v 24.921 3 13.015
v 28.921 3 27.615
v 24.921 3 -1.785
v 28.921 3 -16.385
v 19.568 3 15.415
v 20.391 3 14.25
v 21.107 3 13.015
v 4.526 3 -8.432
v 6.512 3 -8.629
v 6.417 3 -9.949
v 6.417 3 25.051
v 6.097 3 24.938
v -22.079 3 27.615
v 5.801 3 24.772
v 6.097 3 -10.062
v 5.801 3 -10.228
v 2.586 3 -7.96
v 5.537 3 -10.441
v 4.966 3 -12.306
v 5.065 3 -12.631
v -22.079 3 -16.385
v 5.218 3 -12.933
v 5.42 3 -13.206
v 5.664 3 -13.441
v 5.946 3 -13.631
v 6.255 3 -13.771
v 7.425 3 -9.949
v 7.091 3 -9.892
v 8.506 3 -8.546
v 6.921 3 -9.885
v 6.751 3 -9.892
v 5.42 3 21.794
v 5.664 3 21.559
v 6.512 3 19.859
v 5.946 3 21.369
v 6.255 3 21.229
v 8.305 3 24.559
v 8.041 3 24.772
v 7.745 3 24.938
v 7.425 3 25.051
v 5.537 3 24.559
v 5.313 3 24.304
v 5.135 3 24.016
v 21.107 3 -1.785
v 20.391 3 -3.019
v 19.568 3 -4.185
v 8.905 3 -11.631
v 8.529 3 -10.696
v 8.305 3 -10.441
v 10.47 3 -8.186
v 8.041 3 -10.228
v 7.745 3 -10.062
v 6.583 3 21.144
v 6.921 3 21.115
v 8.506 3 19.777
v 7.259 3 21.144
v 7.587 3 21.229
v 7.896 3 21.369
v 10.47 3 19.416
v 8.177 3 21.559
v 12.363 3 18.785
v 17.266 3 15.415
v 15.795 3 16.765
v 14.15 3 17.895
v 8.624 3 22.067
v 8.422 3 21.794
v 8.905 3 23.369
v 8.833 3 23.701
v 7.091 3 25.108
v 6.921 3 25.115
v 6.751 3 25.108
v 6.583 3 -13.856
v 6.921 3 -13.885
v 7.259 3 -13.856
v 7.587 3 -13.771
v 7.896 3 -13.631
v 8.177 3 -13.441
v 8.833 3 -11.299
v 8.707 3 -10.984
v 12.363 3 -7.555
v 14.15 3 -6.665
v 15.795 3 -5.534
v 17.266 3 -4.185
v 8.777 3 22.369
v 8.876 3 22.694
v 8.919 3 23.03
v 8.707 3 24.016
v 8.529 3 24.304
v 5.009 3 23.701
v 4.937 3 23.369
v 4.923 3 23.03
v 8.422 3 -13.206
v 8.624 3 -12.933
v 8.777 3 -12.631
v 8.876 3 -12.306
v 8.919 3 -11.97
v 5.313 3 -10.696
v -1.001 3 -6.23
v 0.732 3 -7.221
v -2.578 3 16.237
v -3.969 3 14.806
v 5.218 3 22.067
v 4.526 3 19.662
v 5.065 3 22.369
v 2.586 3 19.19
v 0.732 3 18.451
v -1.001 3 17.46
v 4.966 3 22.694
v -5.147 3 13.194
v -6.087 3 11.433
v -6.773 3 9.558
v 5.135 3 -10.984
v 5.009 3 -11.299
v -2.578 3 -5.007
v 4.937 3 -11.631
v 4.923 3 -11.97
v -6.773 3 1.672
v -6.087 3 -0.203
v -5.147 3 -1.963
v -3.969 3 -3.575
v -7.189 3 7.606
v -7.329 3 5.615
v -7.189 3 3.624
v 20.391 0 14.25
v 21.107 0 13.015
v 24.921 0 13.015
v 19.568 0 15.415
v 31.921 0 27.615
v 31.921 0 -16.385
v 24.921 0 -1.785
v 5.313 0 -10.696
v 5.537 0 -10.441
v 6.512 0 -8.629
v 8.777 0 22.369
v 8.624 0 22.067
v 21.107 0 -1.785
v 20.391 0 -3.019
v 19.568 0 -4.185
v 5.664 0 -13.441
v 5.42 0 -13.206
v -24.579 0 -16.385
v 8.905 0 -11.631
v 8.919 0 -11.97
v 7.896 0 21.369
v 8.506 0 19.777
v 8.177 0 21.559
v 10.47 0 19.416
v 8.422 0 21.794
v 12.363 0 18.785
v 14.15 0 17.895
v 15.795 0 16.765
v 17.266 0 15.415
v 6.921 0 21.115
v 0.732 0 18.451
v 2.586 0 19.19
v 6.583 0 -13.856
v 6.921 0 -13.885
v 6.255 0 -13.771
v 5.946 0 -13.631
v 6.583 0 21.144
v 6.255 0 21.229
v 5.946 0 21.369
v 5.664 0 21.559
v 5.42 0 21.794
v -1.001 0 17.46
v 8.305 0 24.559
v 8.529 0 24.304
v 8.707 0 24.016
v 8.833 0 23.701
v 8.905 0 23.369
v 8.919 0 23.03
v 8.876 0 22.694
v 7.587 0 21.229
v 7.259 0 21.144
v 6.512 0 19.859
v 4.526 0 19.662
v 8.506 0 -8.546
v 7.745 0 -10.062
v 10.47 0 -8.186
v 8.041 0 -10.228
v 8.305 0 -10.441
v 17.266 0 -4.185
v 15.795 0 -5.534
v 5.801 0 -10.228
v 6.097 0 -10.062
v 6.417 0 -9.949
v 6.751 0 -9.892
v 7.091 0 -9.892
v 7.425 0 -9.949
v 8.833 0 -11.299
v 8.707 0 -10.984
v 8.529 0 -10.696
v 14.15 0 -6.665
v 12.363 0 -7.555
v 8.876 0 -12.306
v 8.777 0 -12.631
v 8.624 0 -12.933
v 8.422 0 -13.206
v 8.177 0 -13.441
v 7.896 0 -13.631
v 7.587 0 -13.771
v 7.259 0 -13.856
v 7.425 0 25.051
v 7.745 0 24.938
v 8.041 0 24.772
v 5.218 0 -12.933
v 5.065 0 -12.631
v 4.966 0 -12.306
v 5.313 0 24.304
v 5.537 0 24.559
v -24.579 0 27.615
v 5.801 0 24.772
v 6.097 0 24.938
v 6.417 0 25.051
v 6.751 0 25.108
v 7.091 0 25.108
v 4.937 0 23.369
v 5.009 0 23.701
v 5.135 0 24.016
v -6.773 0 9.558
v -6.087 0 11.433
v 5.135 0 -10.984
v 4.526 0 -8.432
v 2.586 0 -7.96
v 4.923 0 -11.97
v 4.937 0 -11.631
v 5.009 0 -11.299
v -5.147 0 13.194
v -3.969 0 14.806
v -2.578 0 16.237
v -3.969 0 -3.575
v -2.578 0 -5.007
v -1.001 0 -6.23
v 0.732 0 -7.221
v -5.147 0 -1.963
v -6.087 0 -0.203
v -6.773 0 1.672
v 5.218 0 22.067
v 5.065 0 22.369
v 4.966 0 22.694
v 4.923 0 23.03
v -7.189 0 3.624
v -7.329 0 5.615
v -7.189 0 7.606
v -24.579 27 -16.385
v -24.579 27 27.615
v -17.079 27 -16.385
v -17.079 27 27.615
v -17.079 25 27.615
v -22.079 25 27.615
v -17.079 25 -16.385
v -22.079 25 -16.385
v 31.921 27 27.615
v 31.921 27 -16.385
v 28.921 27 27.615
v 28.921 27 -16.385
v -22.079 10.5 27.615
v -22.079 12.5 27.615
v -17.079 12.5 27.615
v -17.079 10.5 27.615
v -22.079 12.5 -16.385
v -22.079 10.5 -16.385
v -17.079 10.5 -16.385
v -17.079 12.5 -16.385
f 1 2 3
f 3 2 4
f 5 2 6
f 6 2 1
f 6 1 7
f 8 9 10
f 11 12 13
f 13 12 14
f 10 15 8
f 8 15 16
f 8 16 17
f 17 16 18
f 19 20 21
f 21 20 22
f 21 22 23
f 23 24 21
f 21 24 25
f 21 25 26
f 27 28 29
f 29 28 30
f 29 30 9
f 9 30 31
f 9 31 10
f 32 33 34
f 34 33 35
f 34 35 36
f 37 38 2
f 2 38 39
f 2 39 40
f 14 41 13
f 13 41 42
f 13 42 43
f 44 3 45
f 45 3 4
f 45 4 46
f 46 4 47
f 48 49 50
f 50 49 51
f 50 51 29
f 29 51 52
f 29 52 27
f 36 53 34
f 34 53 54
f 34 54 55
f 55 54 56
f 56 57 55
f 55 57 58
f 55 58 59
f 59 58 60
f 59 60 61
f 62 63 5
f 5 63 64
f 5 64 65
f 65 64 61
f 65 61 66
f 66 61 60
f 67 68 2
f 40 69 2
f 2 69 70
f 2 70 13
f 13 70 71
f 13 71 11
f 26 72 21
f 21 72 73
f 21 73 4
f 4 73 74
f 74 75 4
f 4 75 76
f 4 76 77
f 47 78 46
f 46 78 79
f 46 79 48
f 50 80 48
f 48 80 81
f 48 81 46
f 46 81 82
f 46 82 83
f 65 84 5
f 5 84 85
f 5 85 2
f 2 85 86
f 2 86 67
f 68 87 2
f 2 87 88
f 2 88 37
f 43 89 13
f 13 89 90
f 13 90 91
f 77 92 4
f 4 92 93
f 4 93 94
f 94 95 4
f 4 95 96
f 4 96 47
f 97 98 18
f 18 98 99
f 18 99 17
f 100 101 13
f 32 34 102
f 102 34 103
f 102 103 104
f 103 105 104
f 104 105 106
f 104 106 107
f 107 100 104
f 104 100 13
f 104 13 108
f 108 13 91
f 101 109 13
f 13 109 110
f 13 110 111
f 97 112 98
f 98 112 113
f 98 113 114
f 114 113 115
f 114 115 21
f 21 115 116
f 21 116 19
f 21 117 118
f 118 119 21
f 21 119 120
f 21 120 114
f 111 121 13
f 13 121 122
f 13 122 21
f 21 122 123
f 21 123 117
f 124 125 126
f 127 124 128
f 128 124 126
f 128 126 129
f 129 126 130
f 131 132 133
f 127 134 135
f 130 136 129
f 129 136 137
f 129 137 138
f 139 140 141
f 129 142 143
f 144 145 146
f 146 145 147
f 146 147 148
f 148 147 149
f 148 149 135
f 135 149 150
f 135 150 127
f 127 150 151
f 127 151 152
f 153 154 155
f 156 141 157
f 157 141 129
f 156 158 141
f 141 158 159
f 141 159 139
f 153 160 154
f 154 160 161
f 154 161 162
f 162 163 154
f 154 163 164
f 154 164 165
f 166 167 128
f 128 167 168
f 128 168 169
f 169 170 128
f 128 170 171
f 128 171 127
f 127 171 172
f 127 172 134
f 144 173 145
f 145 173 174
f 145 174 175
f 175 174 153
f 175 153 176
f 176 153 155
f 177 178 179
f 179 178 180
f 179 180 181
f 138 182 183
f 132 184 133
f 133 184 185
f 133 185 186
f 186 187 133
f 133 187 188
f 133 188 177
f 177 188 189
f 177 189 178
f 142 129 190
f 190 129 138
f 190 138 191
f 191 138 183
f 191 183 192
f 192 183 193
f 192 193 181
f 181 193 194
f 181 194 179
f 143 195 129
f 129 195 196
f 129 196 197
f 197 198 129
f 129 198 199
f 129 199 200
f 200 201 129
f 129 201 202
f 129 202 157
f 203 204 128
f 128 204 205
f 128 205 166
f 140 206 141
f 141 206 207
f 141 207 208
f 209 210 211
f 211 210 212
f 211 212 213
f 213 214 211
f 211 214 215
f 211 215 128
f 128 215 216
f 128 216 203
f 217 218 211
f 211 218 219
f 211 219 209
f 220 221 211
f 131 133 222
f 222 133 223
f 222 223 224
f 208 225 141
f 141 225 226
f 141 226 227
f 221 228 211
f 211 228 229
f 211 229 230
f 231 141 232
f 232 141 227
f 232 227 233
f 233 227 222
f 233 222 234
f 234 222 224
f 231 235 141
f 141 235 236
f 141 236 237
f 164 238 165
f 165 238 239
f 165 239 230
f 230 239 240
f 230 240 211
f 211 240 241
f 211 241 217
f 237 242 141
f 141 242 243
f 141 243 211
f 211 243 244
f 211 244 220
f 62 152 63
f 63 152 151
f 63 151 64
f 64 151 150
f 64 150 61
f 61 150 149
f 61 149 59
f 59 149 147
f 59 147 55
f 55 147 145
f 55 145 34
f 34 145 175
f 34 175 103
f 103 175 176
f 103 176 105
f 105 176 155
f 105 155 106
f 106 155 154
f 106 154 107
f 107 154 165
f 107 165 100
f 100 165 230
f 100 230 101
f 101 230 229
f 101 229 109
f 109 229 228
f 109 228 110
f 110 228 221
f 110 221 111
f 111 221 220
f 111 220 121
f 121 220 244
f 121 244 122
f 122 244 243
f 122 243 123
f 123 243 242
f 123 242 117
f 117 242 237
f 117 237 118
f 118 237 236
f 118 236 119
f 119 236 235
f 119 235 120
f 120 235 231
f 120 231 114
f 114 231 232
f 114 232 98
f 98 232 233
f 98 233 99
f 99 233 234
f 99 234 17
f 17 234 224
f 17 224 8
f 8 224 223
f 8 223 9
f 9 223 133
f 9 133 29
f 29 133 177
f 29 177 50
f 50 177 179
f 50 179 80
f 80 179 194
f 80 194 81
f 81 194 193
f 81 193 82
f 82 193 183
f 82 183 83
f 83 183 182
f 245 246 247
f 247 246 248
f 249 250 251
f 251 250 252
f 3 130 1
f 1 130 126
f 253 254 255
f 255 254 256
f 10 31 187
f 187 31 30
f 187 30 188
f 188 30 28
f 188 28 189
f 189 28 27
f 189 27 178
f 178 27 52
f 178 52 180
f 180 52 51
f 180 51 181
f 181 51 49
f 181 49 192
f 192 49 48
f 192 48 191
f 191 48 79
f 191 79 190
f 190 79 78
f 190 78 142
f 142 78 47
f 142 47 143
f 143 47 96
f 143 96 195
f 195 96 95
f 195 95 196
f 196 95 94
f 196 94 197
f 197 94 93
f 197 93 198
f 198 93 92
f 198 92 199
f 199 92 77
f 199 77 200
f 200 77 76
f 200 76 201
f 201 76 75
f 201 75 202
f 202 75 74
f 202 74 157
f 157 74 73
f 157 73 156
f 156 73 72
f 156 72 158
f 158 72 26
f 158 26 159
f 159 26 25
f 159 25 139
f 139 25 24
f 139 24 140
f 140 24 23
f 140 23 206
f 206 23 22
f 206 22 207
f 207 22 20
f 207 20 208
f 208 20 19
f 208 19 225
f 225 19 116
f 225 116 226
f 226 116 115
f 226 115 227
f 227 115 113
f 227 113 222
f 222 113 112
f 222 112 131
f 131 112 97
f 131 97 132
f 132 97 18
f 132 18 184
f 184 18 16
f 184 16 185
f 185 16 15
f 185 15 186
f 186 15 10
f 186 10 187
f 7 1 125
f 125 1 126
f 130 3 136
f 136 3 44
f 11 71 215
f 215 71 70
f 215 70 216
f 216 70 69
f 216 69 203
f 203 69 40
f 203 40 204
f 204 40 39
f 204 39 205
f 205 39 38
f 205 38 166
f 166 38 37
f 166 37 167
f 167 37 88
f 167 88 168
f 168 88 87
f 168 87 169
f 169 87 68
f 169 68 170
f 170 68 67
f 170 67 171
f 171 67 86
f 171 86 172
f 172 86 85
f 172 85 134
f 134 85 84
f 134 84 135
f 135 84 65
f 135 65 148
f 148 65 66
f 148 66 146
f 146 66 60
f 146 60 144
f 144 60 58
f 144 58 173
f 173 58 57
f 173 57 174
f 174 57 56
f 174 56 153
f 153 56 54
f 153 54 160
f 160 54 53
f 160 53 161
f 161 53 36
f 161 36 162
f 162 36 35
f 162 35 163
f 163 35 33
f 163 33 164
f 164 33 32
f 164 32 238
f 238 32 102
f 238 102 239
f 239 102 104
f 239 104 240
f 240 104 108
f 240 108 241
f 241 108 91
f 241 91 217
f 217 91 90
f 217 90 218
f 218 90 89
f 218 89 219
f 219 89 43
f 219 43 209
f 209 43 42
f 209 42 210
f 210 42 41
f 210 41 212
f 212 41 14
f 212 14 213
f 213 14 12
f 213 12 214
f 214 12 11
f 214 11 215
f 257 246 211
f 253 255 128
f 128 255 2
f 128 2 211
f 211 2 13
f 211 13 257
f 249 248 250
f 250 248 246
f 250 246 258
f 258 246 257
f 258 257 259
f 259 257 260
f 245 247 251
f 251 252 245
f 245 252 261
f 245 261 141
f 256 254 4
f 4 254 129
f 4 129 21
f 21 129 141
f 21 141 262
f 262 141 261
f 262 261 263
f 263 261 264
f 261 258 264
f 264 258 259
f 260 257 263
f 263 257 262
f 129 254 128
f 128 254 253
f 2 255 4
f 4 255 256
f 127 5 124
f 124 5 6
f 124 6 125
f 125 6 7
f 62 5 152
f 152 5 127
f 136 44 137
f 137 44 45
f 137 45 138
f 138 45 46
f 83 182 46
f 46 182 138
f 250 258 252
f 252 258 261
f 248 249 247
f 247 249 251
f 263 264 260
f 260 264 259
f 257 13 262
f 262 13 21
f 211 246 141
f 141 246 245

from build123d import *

# Parameters (mm, degrees)
SKETCH1_W            = 50
SKETCH1_H            = 40
BOSS_EXTRUDE1_DEPTH  = 3
SKETCH2_W            = 4
SKETCH2_H            = 40
BOSS_EXTRUDE2_DEPTH  = 24
SKETCH3_W            = 40
SKETCH3_H            = 13
CUT_EXTRUDE1_DEPTH   = 2
SKETCH5_W            = 2
SKETCH5_H            = 40
BOSS_EXTRUDE3_DEPTH  = 24
SKETCH6_R            = 2
CUT_EXTRUDE9_DEPTH   = 5
BOSS_EXTRUDE5_DEPTH  = 2
BOSS_EXTRUDE6_DEPTH  = 2
SKETCH12_W           = 44
SKETCH12_H           = 27
BOSS_EXTRUDE7_DEPTH  = 1
SKETCH14_W           = 44
SKETCH14_H           = 2
BOSS_EXTRUDE8_DEPTH  = 3
BOSS_EXTRUDE9_DEPTH  = 0.5
SKETCH15_W           = 44
SKETCH15_H           = 2
BOSS_EXTRUDE10_DEPTH = 3
SKETCH16_W           = 14.8
SKETCH16_H           = 3
CUT_EXTRUDE10_DEPTH  = 0.5
SKETCH17_W           = 44
SKETCH17_H           = 27
BOSS_EXTRUDE11_DEPTH = 4
SKETCH18_W           = 44
SKETCH18_H           = 24
CUT_EXTRUDE11_DEPTH  = 4
SKETCH21_R           = 14.25
CUT_EXTRUDE15_DEPTH  = 4
CUT_EXTRUDE16_START  = -4
CUT_EXTRUDE16_DEPTH  = 4
SKETCH24_W           = 44
SKETCH24_H           = 27
BOSS_EXTRUDE13_DEPTH = 1
SKETCH25_W           = 44
SKETCH25_H           = 12.5
CUT_EXTRUDE17_DEPTH  = 1
SKETCH26_W           = 44
SKETCH26_H           = 2
CUT_EXTRUDE18_DEPTH  = 1
SKETCH27_W           = 44
SKETCH27_H           = 2
CUT_EXTRUDE19_DEPTH  = 1
SKETCH28_W           = 44
SKETCH28_H           = 7.5
CUT_EXTRUDE20_DEPTH  = 3
SKETCH29_W           = 44
SKETCH29_H           = 27
BOSS_EXTRUDE14_DEPTH = 0.5


with BuildPart() as part:
    # Sketch1 → Boss-Extrude1 (new body)
    with BuildSketch(Plane(origin=(0, 0, 0), x_dir=(1, 0, 0), z_dir=(0, 1, 0))):
        with Locations((1.920937393, -5.615172506)):
            Rectangle(SKETCH1_W, SKETCH1_H)
    extrude(amount=BOSS_EXTRUDE1_DEPTH)

    # Sketch2 → Boss-Extrude2 (add)
    with BuildSketch(Plane(origin=(0, 3, 0), x_dir=(1, 0, 0), z_dir=(0, 1, 0))):
        with Locations((-21.079062607, -5.615172506)):
            Rectangle(SKETCH2_W, SKETCH2_H)
    extrude(amount=BOSS_EXTRUDE2_DEPTH)

    # Sketch3 → Cut-Extrude1 (cut)
    with BuildSketch(Plane(origin=(-19.079062607, 0, 0), x_dir=(0, 0, -1), z_dir=(1, 0, 0))):
        with Locations((-5.615172506, 18.5)):
            Rectangle(SKETCH3_W, SKETCH3_H)
    extrude(amount=-CUT_EXTRUDE1_DEPTH, mode=Mode.SUBTRACT)

    # Sketch5 → Boss-Extrude3 (add)
    with BuildSketch(Plane(origin=(0, 3, 0), x_dir=(1, 0, 0), z_dir=(0, 1, 0))):
        with Locations((25.920937393, -5.615172506)):
            Rectangle(SKETCH5_W, SKETCH5_H)
    extrude(amount=BOSS_EXTRUDE3_DEPTH)

    # Sketch6 → Cut-Extrude9 (cut)
    with BuildSketch(Plane.XZ):
        with Locations(Location((6.920937393, 23.115172506, 0), (0, 0, 270))):
            Circle(SKETCH6_R)
        with Locations(Location((6.920937393, -11.884827494, 0), (0, 0, 270))):
            Circle(SKETCH6_R)
        with BuildLine():
            Line((24.420937393, 13.015172506), (18.923020545, 13.015172506))
            ThreePointArc((18.923020545, 13.015172506), (-7.179062607, 5.615172506), (18.923020545, -1.784827494))
            Line((18.923020545, -1.784827494), (24.420937393, -1.784827494))
            Line((24.420937393, -1.784827494), (24.420937393, 5.615172506))
            Line((24.420937393, 5.615172506), (24.420937393, 13.015172506))
        make_face()
    extrude(amount=-CUT_EXTRUDE9_DEPTH, mode=Mode.SUBTRACT)

    # Sketch10 → Boss-Extrude5 (add)
    with BuildSketch(Plane.XY.offset(25.615172506)):
        Polygon((-19.079062607, 27), (-19.079062607, 25), (-21.079062607, 25), (-21.079062607, 12), (-19.079062607, 12), (-19.079062607, 3), (24.920937393, 3), (24.920937393, 27), (26.920937393, 27), (26.920937393, 0), (-23.079062607, 0), (-23.079062607, 27), align=None)
    extrude(amount=BOSS_EXTRUDE5_DEPTH)

    # Sketch11 → Boss-Extrude6 (add)
    with BuildSketch(Plane(origin=(0, 0, -14.384827494), x_dir=(-1, 0, 0), z_dir=(0, 0, -1))):
        Polygon((-26.920937393, 27), (-24.920937393, 27), (-24.920937393, 3), (19.079062607, 3), (19.079062607, 12), (21.079062607, 12), (21.079062607, 25), (19.079062607, 25), (19.079062607, 27), (23.079062607, 27), (23.079062607, 0), (-26.920937393, 0), align=None)
    extrude(amount=BOSS_EXTRUDE6_DEPTH)

    # Sketch12 → Boss-Extrude7 (add)
    with BuildSketch(Plane(origin=(26.920937393, 0, 0), x_dir=(0, 0, -1), z_dir=(1, 0, 0))):
        with Locations((-5.615172506, 13.5)):
            Rectangle(SKETCH12_W, SKETCH12_H)
    extrude(amount=BOSS_EXTRUDE7_DEPTH)

    # Sketch14 → Boss-Extrude8 (add)
    with BuildSketch(Plane(origin=(-19.079062607, 0, 0), x_dir=(0, 0, -1), z_dir=(1, 0, 0))):
        with Locations((-5.615172506, 26)):
            Rectangle(SKETCH14_W, SKETCH14_H)
    extrude(amount=BOSS_EXTRUDE8_DEPTH)

    # 3DSketch1 → Boss-Extrude9 (add)
    with BuildSketch(Plane(origin=(-21.079062607, 12, 27.615172506), x_dir=(0.04540766091864994, 0, -0.9989685402102996), z_dir=(0, -1, 0))):
        Polygon((0, 0), (0.090815322, 1.99793708), (44.045431091, 0), (43.954615769, -1.99793708), align=None)
    extrude(amount=-BOSS_EXTRUDE9_DEPTH)

    # Sketch15 → Boss-Extrude10 (add)
    with BuildSketch(Plane(origin=(-19.079062607, 0, 0), x_dir=(0, 0, -1), z_dir=(1, 0, 0))):
        with Locations((-5.615172506, 11.5)):
            Rectangle(SKETCH15_W, SKETCH15_H)
    extrude(amount=BOSS_EXTRUDE10_DEPTH)

    # Sketch16 → Cut-Extrude10 (cut)
    with BuildSketch(Plane.ZY.offset(-24.420937393)):
        with Locations((5.615172506, 1.5)):
            Rectangle(SKETCH16_W, SKETCH16_H)
    extrude(amount=-CUT_EXTRUDE10_DEPTH, mode=Mode.SUBTRACT)

    # Sketch17 → Boss-Extrude11 (add)
    with BuildSketch(Plane(origin=(27.920937393, 0, 0), x_dir=(0, 0, -1), z_dir=(1, 0, 0))):
        with Locations((-5.615172506, 13.5)):
            Rectangle(SKETCH17_W, SKETCH17_H)
    extrude(amount=BOSS_EXTRUDE11_DEPTH)

    # Sketch18 → Cut-Extrude11 (cut)
    with BuildSketch(Plane.ZY.offset(-24.920937393)):
        with Locations((5.615172506, 15)):
            Rectangle(SKETCH18_W, SKETCH18_H)
    extrude(amount=-CUT_EXTRUDE11_DEPTH, mode=Mode.SUBTRACT)

    # Sketch21 → Cut-Extrude15 (cut)
    with BuildSketch(Plane(origin=(0, 0, 0), x_dir=(-1, 0, 0), z_dir=(0, -1, 0))):
        with Locations((-6.920937393, -5.615172506)):
            Circle(SKETCH21_R)
    extrude(amount=-CUT_EXTRUDE15_DEPTH, mode=Mode.SUBTRACT)

    # Sketch22 → Cut-Extrude16 (cut)
    with BuildSketch(Plane(origin=(0, 3, 0), x_dir=(1, 0, 0), z_dir=(0, 1, 0)).offset(CUT_EXTRUDE16_START)):
        with BuildLine():
            ThreePointArc((21.106680727, 1.784827494), (20.39103932, 3.019158274), (19.568281538, 4.184827494))
            Line((19.568281538, 4.184827494), (17.266105347, 4.184827494))
            ThreePointArc((17.266105347, 4.184827494), (18.246250908, 3.03351374), (19.09888878, 1.784827494))
            Line((19.09888878, 1.784827494), (21.106680727, 1.784827494))
        make_face()
        with BuildLine():
            Line((17.266105347, -15.415172506), (19.568281538, -15.415172506))
            ThreePointArc((19.568281538, -15.415172506), (20.39103932, -14.249503286), (21.106680727, -13.015172506))
            Line((21.106680727, -13.015172506), (19.09888878, -13.015172506))
            ThreePointArc((19.09888878, -13.015172506), (18.246250908, -14.263858752), (17.266105347, -15.415172506))
        make_face()
    extrude(amount=CUT_EXTRUDE16_DEPTH, mode=Mode.SUBTRACT)

    # Sketch24 → Boss-Extrude13 (add)
    with BuildSketch(Plane.ZY.offset(23.079062607)):
        with Locations((5.615172506, 13.5)):
            Rectangle(SKETCH24_W, SKETCH24_H)
    extrude(amount=BOSS_EXTRUDE13_DEPTH)

    # Sketch25 → Cut-Extrude17 (cut)
    with BuildSketch(Plane(origin=(-21.079062607, 0, 0), x_dir=(0, 0, -1), z_dir=(1, 0, 0))):
        with Locations((-5.615172506, 18.75)):
            Rectangle(SKETCH25_W, SKETCH25_H)
    extrude(amount=-CUT_EXTRUDE17_DEPTH, mode=Mode.SUBTRACT)

    # Sketch26 → Cut-Extrude18 (cut)
    with BuildSketch(Plane(origin=(-16.079062607, 0, 0), x_dir=(0, 0, -1), z_dir=(1, 0, 0))):
        with Locations((-5.615172506, 26)):
            Rectangle(SKETCH26_W, SKETCH26_H)
    extrude(amount=-CUT_EXTRUDE18_DEPTH, mode=Mode.SUBTRACT)

    # Sketch27 → Cut-Extrude19 (cut)
    with BuildSketch(Plane(origin=(-16.079062607, 0, 0), x_dir=(0, 0, -1), z_dir=(1, 0, 0))):
        with Locations((-5.615172506, 11.5)):
            Rectangle(SKETCH27_W, SKETCH27_H)
    extrude(amount=-CUT_EXTRUDE19_DEPTH, mode=Mode.SUBTRACT)

    # Sketch28 → Cut-Extrude20 (cut)
    with BuildSketch(Plane(origin=(-19.079062607, 0, 0), x_dir=(0, 0, -1), z_dir=(1, 0, 0))):
        with Locations((-5.615172506, 6.75)):
            Rectangle(SKETCH28_W, SKETCH28_H)
    extrude(amount=-CUT_EXTRUDE20_DEPTH, mode=Mode.SUBTRACT)

    # Sketch29 → Boss-Extrude14 (add)
    with BuildSketch(Plane.ZY.offset(24.079062607)):
        with Locations((5.615172506, 13.5)):
            Rectangle(SKETCH29_W, SKETCH29_H)
    extrude(amount=BOSS_EXTRUDE14_DEPTH)


solid = part.part
